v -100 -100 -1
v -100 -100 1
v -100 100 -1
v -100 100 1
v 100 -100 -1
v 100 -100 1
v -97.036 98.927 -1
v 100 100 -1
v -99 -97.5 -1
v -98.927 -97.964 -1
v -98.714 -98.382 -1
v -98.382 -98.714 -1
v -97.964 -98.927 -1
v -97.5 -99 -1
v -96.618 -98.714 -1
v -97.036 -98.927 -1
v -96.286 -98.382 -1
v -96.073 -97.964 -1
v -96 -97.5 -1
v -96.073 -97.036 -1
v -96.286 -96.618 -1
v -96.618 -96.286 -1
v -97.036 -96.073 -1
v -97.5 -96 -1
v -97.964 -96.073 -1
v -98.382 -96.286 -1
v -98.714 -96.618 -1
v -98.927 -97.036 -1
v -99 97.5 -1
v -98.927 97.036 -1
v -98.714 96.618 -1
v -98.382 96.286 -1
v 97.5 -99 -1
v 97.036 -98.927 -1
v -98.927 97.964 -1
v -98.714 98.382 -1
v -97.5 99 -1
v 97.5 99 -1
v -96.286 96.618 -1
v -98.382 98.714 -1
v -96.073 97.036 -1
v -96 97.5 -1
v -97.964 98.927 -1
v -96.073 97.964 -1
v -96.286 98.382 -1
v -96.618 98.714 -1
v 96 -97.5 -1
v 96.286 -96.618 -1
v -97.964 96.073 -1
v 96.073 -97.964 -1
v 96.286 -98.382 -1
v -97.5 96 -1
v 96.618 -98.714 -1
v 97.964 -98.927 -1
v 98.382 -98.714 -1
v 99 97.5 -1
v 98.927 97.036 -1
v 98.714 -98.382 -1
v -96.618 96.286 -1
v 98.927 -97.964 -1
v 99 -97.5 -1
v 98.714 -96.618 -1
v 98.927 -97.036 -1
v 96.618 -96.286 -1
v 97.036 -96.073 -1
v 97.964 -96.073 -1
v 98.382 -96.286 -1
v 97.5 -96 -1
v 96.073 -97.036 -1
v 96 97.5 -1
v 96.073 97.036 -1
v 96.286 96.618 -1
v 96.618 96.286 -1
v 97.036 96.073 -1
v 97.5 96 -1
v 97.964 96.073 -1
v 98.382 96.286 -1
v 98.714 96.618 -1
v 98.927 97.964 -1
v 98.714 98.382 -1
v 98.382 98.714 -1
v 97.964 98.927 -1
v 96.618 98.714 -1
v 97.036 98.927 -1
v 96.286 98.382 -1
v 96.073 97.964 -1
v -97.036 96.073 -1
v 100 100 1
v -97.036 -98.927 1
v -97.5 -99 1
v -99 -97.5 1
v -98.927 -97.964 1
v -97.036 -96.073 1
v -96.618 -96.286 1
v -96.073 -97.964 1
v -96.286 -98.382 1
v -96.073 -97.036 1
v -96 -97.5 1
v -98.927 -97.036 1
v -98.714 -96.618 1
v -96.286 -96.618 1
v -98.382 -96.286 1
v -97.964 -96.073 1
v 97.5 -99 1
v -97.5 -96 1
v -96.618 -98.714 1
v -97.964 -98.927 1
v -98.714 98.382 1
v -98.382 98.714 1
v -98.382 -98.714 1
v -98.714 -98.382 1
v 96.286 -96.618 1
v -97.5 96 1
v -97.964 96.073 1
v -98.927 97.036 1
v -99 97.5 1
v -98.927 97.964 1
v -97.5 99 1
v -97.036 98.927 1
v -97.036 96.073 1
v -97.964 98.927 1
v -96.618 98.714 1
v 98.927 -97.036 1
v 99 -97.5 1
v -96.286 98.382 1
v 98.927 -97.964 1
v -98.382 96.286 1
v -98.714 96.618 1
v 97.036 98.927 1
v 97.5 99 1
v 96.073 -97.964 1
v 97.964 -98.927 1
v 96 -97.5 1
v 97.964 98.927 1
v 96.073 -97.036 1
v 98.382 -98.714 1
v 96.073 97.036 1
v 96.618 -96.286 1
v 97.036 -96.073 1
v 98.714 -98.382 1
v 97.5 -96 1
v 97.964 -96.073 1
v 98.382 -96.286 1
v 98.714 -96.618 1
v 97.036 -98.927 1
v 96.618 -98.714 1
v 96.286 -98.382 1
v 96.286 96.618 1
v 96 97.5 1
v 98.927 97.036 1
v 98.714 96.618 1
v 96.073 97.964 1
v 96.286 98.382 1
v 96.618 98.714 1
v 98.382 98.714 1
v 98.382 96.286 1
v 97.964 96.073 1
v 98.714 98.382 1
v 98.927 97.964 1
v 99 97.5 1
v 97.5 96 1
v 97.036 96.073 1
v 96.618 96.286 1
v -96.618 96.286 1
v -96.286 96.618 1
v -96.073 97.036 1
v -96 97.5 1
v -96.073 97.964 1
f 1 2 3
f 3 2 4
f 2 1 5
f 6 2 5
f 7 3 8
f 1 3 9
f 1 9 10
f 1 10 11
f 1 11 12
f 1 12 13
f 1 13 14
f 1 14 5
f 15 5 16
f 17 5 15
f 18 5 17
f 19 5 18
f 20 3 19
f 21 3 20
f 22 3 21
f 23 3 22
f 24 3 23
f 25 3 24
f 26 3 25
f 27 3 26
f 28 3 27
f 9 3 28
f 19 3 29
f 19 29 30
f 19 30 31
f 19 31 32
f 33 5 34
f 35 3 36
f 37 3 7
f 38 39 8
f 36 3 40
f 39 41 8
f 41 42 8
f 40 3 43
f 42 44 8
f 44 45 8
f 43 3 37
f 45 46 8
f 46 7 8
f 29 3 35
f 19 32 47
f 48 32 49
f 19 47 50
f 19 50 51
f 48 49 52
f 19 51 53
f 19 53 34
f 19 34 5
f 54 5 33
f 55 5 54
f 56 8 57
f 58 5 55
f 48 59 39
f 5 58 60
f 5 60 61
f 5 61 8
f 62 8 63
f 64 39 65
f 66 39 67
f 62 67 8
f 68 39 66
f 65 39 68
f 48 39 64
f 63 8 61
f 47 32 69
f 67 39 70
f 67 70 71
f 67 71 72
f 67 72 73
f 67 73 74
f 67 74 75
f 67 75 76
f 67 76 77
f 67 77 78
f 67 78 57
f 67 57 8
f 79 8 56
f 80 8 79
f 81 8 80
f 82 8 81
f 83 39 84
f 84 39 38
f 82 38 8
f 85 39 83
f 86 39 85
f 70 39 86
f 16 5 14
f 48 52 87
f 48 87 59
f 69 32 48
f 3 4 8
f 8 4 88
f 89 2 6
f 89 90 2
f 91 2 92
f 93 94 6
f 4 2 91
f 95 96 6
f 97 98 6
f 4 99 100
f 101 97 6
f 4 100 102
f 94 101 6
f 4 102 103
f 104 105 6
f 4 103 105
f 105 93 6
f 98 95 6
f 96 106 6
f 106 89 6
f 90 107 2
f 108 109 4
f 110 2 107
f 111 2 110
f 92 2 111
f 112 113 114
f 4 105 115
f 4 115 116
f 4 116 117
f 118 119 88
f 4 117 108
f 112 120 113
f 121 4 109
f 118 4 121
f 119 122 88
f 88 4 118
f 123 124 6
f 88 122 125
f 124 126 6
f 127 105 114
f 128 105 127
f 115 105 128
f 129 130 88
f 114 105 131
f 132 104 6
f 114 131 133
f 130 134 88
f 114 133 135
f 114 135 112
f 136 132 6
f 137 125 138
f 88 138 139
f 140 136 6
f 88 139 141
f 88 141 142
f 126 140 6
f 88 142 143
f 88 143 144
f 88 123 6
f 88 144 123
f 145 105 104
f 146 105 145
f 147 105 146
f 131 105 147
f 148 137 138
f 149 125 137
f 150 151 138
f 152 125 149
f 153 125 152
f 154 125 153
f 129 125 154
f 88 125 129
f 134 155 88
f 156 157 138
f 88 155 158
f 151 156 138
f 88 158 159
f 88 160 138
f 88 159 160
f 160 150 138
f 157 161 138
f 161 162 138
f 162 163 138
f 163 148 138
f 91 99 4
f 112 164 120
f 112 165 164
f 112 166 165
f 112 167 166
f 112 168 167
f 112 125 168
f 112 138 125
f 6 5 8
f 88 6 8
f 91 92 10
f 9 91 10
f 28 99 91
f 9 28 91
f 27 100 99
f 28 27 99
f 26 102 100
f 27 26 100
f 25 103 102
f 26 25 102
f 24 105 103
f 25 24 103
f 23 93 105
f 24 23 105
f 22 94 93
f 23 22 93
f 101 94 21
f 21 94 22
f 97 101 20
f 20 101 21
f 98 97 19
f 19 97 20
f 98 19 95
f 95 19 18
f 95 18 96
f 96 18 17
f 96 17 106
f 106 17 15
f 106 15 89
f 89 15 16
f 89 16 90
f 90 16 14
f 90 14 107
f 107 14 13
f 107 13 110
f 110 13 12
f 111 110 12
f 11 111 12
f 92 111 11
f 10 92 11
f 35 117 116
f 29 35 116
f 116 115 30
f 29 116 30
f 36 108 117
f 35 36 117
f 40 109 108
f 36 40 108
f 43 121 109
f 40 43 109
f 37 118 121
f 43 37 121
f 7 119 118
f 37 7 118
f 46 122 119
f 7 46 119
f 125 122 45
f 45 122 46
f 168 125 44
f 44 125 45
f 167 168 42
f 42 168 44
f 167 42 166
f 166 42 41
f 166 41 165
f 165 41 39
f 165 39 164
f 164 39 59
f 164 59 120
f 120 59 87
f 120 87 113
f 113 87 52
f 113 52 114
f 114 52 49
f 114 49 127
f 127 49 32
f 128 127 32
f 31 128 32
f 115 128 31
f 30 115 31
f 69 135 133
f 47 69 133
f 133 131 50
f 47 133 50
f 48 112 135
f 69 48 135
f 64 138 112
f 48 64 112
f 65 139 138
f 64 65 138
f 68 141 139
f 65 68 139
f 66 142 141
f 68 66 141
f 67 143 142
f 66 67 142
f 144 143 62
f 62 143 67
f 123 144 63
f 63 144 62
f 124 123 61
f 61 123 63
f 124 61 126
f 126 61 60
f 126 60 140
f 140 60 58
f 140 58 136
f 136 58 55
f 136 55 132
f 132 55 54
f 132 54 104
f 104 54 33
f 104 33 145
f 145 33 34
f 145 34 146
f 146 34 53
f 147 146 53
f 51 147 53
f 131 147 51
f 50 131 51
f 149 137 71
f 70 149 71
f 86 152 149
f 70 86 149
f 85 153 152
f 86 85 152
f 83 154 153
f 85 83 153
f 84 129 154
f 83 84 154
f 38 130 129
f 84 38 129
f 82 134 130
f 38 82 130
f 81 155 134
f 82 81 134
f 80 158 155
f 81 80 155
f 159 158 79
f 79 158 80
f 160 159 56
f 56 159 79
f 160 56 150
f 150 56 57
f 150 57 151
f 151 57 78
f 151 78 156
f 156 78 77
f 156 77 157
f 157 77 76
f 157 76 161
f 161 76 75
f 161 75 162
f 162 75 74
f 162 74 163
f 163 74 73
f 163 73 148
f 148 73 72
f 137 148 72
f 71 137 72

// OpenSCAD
difference() {
  cube([200,200,2],center=true);

  for(i=[0:3]) {
      rotate([0,0,i*90])
      translate([200/2-3/2-1,200/2-3/2-1,0])
        cylinder(r=3/2, h=10, center=true, $fn=20);
  }
}
